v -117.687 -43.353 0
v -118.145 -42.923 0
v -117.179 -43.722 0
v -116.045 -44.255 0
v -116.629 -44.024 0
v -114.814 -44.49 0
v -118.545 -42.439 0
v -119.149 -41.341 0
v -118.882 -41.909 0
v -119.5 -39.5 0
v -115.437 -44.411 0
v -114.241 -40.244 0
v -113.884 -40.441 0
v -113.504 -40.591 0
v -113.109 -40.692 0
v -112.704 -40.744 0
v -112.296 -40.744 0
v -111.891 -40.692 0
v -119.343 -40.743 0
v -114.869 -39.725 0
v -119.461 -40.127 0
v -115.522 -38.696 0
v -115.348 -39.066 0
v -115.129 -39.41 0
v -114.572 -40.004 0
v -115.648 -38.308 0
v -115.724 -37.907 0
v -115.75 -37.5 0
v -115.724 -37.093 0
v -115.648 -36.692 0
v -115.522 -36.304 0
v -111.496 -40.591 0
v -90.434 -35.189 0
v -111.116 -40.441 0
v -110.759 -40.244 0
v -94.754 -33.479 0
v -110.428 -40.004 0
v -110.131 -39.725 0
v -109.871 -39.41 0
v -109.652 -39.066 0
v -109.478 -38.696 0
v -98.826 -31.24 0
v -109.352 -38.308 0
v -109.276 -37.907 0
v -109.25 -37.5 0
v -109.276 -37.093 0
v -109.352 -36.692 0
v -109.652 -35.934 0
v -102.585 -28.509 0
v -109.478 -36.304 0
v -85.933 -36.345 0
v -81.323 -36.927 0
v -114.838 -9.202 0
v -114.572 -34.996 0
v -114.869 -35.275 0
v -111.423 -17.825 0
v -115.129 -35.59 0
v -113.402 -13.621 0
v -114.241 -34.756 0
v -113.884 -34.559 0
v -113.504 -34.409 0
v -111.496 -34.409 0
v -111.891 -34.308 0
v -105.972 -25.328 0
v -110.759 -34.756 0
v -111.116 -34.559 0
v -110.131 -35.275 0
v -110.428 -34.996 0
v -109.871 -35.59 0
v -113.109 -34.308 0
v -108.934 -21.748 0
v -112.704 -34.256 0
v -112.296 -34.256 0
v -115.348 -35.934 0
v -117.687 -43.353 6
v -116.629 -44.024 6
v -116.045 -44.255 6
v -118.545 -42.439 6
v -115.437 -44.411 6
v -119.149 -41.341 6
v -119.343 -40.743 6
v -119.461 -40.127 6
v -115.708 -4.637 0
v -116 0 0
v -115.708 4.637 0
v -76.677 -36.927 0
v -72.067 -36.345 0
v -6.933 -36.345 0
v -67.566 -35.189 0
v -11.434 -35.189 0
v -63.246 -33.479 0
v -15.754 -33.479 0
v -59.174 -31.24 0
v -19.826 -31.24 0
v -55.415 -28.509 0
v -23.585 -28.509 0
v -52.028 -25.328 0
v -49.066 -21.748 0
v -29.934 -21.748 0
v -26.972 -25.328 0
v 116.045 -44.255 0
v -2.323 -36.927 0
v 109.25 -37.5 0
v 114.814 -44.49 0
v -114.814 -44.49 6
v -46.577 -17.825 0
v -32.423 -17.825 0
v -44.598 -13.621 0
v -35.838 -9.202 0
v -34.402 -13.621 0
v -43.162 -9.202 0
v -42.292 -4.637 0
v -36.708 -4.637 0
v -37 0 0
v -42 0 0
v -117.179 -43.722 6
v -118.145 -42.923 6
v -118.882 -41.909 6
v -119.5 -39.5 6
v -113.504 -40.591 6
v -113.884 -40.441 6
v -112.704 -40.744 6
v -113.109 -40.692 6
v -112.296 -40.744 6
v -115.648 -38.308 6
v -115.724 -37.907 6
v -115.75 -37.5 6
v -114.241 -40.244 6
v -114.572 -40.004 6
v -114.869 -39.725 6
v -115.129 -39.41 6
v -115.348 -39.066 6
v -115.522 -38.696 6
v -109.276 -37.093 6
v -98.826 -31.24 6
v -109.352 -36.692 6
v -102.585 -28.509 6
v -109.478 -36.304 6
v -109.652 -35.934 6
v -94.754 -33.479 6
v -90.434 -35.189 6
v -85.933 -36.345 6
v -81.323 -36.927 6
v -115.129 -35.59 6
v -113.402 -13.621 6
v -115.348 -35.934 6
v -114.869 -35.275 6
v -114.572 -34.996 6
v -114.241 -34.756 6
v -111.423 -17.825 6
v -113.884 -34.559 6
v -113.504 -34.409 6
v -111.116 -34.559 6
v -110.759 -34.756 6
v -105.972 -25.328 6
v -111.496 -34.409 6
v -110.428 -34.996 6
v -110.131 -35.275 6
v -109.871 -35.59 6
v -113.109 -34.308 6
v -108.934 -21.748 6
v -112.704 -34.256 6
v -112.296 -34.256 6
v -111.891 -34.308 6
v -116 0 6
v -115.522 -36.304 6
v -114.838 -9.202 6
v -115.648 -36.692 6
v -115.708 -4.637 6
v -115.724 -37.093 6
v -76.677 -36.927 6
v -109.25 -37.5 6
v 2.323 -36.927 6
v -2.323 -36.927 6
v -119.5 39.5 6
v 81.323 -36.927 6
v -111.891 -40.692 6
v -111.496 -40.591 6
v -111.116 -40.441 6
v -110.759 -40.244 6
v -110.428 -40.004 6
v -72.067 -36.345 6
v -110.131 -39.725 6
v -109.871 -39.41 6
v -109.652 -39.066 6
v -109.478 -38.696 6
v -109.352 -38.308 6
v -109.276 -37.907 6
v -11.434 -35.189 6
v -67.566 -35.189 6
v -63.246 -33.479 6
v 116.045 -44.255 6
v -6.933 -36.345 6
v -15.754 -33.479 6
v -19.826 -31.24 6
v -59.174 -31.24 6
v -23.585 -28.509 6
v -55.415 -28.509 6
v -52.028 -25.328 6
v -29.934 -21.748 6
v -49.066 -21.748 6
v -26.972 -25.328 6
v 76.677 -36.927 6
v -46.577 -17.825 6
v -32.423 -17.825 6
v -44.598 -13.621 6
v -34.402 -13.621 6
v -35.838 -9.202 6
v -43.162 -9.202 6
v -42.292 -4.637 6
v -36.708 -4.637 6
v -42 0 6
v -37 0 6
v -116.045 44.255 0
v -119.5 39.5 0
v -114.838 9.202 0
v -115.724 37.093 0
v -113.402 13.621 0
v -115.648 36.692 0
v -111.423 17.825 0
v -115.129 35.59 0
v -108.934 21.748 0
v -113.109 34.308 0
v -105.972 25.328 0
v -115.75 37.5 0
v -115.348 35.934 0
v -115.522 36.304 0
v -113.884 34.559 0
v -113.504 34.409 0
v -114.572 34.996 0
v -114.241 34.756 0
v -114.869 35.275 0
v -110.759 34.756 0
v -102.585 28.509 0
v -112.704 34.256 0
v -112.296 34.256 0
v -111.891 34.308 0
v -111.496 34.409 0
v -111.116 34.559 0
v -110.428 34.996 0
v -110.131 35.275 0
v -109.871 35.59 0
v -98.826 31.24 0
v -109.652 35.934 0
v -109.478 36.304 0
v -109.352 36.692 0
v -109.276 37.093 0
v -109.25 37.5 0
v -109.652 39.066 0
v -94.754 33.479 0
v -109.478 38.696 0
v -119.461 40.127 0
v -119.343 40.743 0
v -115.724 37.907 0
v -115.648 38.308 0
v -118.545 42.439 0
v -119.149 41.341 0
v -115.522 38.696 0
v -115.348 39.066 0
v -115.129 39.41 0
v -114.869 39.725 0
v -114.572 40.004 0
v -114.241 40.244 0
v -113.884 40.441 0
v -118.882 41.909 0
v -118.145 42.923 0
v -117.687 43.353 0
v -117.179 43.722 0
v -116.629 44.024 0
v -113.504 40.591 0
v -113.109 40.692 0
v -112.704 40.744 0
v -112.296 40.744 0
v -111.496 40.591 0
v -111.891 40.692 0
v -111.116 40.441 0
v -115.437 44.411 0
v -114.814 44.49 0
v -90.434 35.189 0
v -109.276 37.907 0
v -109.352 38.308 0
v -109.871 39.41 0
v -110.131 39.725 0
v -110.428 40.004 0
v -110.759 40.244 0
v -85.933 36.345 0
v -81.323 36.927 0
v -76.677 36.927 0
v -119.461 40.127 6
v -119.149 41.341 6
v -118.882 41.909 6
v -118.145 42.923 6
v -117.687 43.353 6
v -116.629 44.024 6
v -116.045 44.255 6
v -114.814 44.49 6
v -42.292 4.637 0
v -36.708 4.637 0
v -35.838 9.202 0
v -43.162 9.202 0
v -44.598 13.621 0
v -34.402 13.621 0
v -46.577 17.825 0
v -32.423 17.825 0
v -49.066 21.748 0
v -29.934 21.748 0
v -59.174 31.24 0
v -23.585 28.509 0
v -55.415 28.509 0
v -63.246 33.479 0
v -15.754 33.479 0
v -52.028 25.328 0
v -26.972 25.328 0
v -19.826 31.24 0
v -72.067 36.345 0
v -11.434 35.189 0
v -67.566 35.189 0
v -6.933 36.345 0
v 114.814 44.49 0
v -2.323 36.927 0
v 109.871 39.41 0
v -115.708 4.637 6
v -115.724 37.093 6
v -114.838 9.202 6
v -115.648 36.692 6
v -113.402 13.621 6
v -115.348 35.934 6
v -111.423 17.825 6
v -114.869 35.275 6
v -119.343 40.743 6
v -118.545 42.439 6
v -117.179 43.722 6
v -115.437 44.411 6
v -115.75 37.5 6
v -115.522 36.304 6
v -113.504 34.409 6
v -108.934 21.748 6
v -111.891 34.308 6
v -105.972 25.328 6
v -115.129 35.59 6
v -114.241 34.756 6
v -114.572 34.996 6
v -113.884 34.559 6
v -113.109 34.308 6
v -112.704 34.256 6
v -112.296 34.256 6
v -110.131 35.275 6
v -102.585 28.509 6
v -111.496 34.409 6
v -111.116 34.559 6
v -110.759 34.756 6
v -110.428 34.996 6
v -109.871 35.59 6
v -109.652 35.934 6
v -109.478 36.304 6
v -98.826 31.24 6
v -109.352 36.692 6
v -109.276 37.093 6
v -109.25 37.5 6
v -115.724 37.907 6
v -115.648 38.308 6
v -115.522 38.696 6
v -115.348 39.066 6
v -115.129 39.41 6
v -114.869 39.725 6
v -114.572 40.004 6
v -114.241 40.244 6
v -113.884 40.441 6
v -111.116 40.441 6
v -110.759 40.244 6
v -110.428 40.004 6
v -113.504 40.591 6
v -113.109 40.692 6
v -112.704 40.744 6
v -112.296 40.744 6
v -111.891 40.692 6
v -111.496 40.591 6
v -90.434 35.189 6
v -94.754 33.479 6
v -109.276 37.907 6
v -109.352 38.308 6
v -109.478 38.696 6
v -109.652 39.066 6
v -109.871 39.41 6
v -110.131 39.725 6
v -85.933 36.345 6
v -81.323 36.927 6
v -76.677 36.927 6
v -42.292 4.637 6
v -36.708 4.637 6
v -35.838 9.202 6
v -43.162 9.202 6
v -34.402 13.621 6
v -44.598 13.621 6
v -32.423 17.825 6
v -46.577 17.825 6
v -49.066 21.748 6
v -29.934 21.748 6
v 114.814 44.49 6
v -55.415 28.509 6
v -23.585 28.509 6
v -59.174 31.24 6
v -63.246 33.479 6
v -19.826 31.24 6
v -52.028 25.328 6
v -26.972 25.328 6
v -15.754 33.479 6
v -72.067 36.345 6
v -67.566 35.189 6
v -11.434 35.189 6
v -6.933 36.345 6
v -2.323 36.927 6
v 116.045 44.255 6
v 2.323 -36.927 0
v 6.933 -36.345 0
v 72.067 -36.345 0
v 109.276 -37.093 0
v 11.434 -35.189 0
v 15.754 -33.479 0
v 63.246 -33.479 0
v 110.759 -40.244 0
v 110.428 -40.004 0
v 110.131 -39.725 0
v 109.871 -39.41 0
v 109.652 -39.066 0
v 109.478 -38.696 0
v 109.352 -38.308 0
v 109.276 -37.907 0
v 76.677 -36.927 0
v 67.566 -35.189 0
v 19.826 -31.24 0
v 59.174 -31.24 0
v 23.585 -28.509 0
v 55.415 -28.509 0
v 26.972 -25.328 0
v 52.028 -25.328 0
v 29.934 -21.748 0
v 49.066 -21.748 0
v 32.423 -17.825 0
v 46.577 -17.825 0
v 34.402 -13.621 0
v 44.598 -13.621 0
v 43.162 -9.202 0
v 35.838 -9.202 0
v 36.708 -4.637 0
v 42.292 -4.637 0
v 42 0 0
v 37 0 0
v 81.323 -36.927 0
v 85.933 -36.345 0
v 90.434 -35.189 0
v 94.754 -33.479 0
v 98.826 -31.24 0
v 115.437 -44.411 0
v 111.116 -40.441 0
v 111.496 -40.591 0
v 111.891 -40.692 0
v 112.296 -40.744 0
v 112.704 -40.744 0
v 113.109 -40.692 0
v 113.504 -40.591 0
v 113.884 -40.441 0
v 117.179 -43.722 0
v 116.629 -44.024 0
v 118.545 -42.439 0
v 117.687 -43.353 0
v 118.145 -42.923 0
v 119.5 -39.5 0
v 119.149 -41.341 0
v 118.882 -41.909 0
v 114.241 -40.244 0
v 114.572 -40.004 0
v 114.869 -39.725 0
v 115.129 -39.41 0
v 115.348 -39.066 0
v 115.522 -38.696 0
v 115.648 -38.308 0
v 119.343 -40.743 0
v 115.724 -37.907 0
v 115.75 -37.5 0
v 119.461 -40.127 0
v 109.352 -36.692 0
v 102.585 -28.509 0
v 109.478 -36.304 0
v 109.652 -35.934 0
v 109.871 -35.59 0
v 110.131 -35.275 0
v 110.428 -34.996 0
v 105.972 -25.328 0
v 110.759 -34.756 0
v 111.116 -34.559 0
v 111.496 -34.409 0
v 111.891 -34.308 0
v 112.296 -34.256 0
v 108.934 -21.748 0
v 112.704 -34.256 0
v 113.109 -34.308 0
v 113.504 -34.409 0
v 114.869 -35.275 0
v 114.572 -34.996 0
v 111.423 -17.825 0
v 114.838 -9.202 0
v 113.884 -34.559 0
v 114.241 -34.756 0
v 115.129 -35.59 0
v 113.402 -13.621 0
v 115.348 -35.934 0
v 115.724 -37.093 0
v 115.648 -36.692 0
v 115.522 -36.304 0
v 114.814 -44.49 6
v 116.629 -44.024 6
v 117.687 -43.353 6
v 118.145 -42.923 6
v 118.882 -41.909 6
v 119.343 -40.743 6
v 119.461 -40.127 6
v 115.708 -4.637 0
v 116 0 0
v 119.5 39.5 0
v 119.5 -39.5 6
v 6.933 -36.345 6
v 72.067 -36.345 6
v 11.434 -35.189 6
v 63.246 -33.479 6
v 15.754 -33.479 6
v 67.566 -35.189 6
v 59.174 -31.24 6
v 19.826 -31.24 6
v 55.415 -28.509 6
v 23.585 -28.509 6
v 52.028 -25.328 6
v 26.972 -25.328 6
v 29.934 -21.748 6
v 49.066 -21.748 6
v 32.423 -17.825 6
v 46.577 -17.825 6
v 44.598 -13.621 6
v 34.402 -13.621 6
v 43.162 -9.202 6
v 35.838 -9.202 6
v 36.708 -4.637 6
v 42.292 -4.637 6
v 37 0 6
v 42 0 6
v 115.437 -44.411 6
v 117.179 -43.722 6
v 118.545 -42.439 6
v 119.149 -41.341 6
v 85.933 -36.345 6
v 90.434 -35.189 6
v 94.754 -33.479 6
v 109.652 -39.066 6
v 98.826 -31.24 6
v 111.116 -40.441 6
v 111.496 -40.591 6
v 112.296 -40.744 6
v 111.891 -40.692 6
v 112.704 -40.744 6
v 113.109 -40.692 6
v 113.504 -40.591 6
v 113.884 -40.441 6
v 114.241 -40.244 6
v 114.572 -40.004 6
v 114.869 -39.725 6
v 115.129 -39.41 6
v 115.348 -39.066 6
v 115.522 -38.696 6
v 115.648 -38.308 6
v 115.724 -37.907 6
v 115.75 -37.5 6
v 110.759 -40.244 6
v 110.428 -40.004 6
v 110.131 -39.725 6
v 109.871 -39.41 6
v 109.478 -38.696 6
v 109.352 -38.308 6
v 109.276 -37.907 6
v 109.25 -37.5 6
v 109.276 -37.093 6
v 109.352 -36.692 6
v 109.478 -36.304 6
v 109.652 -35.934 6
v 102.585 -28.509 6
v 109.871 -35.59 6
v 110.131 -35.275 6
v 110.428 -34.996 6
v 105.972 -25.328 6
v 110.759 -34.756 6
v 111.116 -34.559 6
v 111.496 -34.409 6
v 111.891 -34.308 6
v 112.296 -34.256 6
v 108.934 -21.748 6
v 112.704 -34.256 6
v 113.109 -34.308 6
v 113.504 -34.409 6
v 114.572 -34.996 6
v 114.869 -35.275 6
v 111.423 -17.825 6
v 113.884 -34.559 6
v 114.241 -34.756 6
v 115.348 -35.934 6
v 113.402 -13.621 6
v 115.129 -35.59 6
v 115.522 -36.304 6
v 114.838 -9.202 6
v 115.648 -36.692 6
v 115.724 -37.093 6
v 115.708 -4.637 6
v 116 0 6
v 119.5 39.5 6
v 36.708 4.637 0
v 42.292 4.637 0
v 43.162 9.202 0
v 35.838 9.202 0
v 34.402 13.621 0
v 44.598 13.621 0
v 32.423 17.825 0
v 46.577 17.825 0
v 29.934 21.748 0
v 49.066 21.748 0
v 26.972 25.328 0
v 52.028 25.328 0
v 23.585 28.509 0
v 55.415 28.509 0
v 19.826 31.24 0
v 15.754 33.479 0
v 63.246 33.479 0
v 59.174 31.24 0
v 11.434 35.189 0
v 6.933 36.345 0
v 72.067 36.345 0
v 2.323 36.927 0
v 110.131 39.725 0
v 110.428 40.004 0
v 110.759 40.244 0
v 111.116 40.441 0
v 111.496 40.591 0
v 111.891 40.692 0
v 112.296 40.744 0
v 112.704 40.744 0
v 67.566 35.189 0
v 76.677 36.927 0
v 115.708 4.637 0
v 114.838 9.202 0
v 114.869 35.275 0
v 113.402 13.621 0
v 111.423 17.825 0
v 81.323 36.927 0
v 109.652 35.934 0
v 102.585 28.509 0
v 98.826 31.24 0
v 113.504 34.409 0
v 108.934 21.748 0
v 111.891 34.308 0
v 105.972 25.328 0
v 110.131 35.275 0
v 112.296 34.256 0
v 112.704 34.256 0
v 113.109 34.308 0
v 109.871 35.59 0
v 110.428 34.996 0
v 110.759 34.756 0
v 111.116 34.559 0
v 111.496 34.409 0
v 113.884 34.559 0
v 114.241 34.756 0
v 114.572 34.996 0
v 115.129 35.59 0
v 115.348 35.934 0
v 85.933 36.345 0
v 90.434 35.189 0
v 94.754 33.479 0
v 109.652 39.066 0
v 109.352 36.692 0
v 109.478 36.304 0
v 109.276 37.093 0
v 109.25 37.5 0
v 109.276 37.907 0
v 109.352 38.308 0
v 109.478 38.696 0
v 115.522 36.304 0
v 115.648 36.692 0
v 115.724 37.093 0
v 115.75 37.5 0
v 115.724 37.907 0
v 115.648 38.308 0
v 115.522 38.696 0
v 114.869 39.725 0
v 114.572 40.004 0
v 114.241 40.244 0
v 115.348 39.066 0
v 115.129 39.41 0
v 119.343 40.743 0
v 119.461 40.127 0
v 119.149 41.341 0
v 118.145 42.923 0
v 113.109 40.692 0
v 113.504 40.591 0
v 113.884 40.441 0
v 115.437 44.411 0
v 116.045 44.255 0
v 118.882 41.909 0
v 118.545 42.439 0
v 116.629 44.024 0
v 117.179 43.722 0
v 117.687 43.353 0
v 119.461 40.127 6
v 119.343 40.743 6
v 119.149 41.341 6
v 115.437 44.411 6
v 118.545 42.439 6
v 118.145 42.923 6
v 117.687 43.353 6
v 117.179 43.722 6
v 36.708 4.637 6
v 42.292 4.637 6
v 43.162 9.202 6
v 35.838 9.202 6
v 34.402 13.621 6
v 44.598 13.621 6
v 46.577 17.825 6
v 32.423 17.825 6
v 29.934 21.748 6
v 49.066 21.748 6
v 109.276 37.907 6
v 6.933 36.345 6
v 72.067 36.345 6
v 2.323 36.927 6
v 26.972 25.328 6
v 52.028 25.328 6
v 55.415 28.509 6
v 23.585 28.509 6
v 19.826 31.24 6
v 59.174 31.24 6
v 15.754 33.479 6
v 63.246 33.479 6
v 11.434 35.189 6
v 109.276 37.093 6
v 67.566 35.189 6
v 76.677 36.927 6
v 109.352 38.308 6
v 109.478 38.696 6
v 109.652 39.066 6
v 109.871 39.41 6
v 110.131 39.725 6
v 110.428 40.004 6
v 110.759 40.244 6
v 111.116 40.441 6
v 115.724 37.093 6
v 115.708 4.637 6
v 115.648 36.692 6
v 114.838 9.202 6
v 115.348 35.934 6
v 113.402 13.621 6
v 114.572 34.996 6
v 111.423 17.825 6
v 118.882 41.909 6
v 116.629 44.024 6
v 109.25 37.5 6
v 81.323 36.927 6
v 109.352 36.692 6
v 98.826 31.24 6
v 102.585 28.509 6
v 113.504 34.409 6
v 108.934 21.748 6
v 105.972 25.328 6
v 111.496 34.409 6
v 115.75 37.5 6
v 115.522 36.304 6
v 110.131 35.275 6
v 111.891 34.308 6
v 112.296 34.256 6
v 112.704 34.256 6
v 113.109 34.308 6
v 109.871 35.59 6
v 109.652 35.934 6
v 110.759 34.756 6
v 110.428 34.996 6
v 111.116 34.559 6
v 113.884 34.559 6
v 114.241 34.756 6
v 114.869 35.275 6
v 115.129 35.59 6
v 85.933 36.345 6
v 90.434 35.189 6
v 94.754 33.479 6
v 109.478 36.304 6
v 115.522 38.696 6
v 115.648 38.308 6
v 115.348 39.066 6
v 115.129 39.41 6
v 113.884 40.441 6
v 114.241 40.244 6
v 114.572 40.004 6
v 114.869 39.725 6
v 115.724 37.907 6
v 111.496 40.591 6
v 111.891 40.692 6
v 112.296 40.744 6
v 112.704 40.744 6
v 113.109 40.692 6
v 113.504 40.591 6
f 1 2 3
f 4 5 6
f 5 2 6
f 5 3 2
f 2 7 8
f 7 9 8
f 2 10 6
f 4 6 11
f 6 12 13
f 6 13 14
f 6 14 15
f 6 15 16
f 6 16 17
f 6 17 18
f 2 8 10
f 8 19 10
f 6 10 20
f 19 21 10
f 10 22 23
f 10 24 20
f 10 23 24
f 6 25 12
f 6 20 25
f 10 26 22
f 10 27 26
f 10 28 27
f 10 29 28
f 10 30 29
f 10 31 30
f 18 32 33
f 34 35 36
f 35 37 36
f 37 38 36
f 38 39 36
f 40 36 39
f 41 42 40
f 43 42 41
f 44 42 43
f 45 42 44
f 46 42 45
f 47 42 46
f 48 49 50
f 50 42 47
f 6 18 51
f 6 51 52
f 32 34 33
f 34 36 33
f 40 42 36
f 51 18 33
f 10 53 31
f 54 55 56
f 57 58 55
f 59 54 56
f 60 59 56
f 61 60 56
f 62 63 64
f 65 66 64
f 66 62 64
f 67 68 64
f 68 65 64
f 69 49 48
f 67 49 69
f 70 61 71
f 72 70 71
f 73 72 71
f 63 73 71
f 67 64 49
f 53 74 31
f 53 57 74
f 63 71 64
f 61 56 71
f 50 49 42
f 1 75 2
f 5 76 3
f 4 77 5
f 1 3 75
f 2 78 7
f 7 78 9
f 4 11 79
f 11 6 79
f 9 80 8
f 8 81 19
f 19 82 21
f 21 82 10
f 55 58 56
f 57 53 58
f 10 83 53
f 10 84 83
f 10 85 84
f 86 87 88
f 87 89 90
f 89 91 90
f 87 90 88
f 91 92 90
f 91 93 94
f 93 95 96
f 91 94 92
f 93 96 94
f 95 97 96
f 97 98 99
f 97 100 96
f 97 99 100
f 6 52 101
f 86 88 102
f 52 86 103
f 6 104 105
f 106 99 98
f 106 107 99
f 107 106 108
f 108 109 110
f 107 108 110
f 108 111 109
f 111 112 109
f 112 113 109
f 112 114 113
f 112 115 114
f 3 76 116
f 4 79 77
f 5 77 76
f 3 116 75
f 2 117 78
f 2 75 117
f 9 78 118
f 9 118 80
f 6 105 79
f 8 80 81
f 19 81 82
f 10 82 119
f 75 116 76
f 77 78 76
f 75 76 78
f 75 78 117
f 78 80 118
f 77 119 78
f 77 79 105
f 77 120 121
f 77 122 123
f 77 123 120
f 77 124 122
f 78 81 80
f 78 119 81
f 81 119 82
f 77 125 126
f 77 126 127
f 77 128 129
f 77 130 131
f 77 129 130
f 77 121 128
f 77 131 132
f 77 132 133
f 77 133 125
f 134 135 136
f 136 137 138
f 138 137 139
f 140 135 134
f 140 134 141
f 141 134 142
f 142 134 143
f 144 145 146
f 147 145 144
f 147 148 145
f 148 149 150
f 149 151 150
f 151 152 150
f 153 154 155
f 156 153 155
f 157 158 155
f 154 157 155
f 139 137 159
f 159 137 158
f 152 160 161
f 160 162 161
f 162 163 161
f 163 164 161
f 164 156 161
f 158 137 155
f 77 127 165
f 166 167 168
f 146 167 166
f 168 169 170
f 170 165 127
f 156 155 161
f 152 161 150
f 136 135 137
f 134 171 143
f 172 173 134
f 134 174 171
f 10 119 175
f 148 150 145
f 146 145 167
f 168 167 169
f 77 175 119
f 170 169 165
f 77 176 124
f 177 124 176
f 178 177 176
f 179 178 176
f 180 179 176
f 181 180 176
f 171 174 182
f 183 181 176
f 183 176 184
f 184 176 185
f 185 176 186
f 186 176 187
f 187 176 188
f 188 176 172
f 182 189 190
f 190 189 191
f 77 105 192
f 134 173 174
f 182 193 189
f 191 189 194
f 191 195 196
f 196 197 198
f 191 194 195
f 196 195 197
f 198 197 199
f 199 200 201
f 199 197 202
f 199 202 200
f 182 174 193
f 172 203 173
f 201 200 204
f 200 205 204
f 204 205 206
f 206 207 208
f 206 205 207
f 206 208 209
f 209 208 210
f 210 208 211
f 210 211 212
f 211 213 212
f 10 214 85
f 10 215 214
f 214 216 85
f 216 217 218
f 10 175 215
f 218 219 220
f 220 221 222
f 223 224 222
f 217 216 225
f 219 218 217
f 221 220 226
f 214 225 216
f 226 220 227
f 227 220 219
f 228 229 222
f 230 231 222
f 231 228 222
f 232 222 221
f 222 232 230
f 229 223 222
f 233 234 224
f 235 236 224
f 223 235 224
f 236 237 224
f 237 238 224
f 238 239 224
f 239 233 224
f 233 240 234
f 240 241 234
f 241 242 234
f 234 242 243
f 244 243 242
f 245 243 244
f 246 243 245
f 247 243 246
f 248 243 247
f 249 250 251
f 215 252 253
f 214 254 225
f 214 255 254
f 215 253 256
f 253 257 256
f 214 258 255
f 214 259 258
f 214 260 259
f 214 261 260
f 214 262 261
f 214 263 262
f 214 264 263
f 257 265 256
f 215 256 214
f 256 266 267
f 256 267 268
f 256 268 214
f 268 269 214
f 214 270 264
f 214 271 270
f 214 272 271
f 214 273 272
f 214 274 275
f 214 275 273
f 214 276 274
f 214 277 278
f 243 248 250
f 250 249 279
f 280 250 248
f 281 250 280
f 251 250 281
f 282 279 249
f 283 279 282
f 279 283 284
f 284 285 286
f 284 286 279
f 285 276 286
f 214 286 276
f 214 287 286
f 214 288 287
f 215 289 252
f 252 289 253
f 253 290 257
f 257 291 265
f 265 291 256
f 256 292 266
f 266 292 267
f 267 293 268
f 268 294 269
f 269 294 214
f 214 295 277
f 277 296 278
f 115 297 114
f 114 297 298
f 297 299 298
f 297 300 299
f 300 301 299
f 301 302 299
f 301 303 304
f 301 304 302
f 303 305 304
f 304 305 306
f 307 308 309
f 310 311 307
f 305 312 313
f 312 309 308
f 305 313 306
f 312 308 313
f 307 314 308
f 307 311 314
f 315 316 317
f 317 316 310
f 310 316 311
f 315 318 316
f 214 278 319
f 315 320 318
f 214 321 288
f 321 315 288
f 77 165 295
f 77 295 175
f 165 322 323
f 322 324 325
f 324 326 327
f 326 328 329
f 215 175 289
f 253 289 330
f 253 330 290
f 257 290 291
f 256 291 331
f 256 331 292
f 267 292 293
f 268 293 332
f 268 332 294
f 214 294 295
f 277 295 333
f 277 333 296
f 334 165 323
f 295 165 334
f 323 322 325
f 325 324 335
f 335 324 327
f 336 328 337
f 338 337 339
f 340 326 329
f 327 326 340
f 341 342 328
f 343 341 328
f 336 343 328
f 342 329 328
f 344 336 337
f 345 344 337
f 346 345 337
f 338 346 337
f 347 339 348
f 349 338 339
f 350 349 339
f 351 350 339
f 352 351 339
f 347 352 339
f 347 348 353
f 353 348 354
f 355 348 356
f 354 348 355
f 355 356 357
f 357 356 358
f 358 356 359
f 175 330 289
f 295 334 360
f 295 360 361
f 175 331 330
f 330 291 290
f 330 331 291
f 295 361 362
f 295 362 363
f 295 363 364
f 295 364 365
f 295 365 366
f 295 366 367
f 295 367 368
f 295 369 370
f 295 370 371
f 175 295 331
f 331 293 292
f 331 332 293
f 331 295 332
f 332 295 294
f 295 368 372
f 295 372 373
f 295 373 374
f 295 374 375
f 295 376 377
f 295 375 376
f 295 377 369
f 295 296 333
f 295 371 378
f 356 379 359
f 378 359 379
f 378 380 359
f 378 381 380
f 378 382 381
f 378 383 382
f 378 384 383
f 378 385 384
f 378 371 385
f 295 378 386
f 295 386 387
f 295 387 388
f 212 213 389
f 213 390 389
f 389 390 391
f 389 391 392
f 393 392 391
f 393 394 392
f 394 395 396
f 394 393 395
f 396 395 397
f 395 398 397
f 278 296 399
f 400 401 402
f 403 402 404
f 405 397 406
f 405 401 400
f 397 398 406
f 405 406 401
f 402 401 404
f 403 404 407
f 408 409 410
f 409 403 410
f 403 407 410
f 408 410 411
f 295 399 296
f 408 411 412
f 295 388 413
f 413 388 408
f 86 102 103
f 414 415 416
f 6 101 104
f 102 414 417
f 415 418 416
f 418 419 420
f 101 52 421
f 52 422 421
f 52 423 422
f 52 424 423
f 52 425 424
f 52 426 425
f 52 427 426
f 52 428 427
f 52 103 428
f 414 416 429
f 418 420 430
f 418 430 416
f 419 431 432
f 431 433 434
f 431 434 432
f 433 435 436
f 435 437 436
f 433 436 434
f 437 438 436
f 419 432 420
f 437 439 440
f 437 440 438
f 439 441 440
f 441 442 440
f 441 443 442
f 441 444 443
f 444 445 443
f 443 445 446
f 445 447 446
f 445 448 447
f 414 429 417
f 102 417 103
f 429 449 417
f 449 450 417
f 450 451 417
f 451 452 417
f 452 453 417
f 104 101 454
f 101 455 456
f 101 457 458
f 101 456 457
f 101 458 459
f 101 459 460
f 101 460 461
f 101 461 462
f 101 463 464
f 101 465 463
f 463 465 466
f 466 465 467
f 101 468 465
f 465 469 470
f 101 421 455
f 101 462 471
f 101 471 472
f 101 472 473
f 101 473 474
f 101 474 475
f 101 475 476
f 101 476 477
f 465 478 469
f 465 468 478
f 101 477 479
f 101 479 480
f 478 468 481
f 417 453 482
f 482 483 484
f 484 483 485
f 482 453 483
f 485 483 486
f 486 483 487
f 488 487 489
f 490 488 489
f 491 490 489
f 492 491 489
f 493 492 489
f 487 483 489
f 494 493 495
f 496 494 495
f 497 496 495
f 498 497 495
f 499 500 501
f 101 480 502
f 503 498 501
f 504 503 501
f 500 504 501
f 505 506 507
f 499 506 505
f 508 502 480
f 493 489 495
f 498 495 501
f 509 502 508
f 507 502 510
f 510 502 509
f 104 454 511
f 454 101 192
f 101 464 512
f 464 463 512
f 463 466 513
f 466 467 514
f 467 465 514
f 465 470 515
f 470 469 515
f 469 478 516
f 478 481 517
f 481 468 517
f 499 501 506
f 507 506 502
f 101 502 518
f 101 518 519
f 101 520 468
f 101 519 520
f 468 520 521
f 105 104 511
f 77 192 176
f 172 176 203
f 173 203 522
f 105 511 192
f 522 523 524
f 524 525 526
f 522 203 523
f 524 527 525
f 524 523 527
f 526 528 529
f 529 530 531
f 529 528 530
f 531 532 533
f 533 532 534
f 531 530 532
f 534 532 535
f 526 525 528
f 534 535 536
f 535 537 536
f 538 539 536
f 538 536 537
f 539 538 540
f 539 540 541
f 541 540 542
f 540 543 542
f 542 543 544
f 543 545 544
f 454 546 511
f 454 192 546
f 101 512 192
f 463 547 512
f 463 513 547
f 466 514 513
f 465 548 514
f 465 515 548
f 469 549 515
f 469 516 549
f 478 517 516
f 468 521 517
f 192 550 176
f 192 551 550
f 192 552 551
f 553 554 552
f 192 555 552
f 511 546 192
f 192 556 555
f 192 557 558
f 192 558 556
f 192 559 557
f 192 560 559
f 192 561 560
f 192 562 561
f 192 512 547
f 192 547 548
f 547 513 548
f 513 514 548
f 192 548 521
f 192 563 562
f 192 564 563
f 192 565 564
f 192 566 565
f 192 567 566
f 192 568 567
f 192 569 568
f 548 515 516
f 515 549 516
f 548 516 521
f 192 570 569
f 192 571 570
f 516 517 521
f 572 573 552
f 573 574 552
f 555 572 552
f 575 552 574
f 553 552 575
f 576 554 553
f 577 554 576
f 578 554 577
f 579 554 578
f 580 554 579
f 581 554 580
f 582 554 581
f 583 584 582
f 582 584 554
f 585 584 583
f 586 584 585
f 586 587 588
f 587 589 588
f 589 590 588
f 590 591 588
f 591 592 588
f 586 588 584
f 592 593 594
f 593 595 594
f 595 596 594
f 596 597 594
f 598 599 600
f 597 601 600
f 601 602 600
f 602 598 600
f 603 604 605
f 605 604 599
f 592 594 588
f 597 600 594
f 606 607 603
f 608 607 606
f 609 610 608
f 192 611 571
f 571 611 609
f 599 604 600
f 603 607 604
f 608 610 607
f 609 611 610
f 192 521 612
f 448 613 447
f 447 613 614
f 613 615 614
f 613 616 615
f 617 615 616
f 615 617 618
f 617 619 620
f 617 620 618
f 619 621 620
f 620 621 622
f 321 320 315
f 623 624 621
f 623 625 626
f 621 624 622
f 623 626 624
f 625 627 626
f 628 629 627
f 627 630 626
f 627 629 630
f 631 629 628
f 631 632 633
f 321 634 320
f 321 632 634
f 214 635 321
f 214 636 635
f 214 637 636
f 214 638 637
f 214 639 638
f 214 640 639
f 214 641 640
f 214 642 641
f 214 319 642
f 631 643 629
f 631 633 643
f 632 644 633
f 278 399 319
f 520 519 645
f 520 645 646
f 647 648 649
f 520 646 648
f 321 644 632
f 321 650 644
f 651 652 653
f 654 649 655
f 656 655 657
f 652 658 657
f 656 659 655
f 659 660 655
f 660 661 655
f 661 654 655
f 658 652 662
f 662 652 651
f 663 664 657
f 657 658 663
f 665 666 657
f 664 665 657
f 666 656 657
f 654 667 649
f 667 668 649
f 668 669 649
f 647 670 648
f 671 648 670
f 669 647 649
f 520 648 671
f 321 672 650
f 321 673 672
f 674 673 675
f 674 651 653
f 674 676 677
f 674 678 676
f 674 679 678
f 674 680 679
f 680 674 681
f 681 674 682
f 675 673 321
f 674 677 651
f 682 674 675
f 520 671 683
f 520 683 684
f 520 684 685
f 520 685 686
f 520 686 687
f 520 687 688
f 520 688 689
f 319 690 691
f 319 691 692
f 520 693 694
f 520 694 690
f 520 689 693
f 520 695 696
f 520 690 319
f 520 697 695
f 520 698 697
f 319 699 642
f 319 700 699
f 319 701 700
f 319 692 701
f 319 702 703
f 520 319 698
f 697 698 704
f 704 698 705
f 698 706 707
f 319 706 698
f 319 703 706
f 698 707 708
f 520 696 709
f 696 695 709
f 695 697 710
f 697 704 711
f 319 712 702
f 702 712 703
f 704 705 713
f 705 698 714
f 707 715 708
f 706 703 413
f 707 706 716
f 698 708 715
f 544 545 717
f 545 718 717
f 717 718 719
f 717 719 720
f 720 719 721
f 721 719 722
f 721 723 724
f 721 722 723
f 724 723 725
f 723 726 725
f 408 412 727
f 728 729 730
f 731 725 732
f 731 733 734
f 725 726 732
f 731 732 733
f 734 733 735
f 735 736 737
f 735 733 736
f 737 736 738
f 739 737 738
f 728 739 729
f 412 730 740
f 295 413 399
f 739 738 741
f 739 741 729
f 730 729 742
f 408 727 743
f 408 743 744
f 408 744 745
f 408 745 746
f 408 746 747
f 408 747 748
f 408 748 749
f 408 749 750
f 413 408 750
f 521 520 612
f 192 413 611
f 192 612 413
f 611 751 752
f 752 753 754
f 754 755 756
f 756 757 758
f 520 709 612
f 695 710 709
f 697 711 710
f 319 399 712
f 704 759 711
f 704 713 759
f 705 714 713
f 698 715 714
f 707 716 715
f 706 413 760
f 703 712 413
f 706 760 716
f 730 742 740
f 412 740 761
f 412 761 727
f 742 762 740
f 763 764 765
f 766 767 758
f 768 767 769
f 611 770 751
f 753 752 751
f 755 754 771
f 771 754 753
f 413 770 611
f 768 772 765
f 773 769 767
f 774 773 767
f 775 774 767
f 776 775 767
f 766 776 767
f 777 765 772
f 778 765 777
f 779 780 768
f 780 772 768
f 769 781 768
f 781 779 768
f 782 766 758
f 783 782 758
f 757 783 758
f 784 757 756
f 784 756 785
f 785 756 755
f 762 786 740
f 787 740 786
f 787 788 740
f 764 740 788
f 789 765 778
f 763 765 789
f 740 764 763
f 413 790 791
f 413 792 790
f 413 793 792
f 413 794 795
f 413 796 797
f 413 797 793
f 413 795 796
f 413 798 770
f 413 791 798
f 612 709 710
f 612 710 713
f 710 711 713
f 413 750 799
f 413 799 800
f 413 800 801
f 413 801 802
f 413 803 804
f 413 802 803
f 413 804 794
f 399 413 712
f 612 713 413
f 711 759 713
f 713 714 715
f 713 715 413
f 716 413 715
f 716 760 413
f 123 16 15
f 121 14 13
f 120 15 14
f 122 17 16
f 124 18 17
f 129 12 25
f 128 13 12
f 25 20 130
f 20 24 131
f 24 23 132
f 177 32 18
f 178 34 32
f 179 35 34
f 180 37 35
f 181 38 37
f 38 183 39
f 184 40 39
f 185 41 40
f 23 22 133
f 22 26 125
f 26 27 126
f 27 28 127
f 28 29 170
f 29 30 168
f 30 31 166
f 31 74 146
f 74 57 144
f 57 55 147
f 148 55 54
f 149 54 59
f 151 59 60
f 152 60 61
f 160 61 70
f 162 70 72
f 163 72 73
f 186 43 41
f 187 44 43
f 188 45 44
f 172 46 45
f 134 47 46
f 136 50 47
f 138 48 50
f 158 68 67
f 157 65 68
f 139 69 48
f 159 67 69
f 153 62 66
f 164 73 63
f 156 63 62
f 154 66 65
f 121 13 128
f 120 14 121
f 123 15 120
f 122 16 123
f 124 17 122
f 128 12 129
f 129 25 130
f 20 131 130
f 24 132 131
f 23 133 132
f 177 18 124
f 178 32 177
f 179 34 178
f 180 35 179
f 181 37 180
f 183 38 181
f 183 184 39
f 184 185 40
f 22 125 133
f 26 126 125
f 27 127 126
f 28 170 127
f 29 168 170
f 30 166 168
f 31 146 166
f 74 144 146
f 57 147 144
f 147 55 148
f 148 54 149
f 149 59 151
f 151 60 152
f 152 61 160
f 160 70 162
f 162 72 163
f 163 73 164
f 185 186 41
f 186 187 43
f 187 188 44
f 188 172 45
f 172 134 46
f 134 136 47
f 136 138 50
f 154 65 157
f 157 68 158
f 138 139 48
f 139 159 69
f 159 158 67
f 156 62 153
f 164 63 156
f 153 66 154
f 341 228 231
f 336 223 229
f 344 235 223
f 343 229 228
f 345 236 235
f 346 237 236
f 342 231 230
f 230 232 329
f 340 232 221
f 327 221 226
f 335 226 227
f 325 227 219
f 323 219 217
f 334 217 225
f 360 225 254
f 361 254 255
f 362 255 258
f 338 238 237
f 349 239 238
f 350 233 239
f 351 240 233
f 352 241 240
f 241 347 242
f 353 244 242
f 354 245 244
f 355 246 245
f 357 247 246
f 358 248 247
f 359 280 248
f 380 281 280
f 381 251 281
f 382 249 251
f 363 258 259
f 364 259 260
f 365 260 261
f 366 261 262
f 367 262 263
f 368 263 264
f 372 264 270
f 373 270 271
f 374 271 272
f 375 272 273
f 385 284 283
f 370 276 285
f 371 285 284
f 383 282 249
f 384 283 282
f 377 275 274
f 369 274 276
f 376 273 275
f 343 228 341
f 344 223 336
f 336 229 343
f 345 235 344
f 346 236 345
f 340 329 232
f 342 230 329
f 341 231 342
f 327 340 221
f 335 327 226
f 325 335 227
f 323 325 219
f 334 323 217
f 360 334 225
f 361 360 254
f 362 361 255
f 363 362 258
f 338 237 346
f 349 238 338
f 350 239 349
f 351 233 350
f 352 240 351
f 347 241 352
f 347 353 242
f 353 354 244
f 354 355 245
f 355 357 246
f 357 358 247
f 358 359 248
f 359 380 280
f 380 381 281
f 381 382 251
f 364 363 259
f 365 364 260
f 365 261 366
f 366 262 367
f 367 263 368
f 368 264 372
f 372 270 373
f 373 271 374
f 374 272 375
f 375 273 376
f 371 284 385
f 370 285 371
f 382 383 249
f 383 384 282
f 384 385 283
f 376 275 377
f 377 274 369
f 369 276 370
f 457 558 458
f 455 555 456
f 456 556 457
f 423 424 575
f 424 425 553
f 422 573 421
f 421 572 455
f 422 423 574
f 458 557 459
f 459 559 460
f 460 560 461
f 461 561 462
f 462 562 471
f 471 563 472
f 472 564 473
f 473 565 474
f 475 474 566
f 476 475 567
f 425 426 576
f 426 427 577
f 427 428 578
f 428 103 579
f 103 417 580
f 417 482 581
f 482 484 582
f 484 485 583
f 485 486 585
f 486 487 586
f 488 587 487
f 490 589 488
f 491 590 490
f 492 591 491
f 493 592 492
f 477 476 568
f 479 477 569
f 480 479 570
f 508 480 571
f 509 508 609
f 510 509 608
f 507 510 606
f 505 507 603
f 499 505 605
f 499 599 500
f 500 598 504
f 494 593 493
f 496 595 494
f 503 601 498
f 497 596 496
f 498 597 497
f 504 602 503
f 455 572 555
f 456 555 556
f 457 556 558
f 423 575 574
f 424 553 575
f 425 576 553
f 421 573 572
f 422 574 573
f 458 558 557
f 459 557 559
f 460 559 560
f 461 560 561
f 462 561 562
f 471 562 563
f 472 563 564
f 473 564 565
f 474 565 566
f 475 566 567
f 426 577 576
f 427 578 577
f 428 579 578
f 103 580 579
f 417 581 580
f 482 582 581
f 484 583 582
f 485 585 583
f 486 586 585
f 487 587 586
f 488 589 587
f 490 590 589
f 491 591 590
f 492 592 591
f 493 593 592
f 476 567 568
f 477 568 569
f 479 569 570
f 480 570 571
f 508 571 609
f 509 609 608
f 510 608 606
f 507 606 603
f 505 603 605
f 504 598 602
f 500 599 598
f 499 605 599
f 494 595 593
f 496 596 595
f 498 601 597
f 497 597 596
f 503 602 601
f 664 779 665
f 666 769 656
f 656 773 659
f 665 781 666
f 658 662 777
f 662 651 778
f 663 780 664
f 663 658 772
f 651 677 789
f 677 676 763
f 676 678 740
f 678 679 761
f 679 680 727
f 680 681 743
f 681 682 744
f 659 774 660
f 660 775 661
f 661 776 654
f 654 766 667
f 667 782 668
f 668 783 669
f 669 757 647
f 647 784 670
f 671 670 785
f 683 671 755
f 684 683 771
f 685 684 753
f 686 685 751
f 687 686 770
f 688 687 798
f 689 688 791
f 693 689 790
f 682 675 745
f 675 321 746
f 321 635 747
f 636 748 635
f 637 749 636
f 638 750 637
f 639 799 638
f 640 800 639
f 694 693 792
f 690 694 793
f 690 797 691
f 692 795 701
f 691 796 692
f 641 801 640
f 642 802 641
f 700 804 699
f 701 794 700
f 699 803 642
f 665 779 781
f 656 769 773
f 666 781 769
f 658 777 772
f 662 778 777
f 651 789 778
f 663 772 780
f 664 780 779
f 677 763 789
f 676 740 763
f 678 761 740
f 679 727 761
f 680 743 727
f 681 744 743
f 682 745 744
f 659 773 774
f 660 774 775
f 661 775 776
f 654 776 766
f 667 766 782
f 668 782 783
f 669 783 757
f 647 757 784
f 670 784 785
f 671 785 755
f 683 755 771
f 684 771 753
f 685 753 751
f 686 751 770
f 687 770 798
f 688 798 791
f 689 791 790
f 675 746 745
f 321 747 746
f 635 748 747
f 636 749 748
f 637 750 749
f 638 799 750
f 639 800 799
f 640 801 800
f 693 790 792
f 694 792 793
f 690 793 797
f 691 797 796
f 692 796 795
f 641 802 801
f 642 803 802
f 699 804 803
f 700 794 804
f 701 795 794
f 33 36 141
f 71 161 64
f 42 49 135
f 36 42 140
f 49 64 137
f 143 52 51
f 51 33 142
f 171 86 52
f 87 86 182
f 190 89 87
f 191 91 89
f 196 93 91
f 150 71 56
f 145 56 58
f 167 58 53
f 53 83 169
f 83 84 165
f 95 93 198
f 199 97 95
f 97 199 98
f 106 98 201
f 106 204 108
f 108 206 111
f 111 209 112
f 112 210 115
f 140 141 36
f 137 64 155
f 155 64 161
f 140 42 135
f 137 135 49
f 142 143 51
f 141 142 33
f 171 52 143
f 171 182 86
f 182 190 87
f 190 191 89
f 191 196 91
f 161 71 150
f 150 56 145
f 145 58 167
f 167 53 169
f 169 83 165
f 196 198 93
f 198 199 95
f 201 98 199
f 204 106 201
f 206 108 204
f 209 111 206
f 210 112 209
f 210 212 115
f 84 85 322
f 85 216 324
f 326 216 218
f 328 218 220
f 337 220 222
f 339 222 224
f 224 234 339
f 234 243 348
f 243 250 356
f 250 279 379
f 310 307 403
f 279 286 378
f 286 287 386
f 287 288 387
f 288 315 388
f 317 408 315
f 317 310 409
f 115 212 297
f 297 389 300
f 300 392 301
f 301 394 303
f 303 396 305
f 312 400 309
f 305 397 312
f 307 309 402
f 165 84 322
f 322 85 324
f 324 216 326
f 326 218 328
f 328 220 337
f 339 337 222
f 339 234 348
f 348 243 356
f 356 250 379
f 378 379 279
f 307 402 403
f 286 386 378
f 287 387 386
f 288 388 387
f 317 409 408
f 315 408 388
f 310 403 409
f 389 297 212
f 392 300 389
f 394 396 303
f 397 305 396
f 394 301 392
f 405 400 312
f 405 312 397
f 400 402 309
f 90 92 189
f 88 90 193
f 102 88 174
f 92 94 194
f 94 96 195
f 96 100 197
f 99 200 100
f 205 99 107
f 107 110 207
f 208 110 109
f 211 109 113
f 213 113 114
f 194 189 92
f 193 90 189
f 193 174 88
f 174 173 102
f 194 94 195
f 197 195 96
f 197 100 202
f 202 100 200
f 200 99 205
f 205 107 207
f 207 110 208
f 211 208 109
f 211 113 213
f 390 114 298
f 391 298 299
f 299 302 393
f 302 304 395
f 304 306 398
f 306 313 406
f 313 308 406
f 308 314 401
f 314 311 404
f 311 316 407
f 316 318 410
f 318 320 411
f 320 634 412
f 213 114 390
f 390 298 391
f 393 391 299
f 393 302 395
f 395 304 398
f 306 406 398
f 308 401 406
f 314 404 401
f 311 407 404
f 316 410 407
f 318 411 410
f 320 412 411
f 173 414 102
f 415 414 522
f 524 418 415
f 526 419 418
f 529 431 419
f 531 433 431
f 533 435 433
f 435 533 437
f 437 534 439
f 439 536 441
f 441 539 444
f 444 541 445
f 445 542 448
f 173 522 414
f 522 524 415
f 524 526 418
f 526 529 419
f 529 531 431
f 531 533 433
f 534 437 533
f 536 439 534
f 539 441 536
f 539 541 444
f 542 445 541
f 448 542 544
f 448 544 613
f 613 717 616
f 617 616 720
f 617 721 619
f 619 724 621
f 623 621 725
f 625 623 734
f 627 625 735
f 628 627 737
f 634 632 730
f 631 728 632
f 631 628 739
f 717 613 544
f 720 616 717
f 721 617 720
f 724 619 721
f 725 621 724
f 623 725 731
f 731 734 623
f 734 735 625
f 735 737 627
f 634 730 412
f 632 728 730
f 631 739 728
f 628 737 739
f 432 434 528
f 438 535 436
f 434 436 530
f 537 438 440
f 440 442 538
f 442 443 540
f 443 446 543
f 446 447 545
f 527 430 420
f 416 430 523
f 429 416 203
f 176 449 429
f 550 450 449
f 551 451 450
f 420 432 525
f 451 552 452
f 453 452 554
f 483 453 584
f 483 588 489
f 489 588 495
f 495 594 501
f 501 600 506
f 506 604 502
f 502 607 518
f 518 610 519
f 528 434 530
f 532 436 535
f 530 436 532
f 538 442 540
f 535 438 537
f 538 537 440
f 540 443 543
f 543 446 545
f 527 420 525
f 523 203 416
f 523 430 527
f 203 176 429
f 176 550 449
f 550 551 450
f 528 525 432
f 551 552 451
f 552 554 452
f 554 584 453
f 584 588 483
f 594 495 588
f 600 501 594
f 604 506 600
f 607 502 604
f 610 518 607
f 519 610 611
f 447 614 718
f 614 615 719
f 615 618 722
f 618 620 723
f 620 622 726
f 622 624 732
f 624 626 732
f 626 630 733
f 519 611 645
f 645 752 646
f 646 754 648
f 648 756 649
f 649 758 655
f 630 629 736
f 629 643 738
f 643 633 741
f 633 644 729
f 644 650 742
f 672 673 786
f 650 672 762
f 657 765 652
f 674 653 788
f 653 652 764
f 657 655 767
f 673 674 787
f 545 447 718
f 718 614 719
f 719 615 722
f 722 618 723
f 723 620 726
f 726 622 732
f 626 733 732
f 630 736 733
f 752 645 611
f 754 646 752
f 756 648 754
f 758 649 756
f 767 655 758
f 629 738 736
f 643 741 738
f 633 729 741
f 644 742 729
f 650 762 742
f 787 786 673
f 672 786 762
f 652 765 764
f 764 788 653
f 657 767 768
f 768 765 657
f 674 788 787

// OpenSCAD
$fn = 50;

difference() {
	union() {
		hull() {
			translate(v = [-114.5, 39.5, 0]) {
				cylinder(h = 6, r = 5);
			}
			translate(v = [114.5, 39.5, 0]) {
				cylinder(h = 6, r = 5);
			}
			translate(v = [-114.5, -39.5, 0]) {
				cylinder(h = 6, r = 5);
			}
			translate(v = [114.5, -39.5, 0]) {
				cylinder(h = 6, r = 5);
			}
		}
	}
	union() {
		translate(v = [-112.5, -37.5, -100.0]) {
			cylinder(h = 200, r = 3.25);
		}
		translate(v = [-112.5, 37.5, -100.0]) {
			cylinder(h = 200, r = 3.25);
		}
		translate(v = [112.5, -37.5, -100.0]) {
			cylinder(h = 200, r = 3.25);
		}
		translate(v = [112.5, 37.5, -100.0]) {
			cylinder(h = 200, r = 3.25);
		}
		translate(v = [-112.5, -37.5, -100.0]) {
			cylinder(h = 200, r = 1.8);
		}
		translate(v = [-112.5, 37.5, -100.0]) {
			cylinder(h = 200, r = 1.8);
		}
		translate(v = [112.5, -37.5, -100.0]) {
			cylinder(h = 200, r = 1.8);
		}
		translate(v = [112.5, 37.5, -100.0]) {
			cylinder(h = 200, r = 1.8);
		}
		translate(v = [-79.0, 0, 0.0]) {
			cylinder(h = 6, r = 37.0);
		}
		cylinder(h = 6, r = 37.0);
		translate(v = [79.0, 0, 0.0]) {
			cylinder(h = 6, r = 37.0);
		}
	}
}
